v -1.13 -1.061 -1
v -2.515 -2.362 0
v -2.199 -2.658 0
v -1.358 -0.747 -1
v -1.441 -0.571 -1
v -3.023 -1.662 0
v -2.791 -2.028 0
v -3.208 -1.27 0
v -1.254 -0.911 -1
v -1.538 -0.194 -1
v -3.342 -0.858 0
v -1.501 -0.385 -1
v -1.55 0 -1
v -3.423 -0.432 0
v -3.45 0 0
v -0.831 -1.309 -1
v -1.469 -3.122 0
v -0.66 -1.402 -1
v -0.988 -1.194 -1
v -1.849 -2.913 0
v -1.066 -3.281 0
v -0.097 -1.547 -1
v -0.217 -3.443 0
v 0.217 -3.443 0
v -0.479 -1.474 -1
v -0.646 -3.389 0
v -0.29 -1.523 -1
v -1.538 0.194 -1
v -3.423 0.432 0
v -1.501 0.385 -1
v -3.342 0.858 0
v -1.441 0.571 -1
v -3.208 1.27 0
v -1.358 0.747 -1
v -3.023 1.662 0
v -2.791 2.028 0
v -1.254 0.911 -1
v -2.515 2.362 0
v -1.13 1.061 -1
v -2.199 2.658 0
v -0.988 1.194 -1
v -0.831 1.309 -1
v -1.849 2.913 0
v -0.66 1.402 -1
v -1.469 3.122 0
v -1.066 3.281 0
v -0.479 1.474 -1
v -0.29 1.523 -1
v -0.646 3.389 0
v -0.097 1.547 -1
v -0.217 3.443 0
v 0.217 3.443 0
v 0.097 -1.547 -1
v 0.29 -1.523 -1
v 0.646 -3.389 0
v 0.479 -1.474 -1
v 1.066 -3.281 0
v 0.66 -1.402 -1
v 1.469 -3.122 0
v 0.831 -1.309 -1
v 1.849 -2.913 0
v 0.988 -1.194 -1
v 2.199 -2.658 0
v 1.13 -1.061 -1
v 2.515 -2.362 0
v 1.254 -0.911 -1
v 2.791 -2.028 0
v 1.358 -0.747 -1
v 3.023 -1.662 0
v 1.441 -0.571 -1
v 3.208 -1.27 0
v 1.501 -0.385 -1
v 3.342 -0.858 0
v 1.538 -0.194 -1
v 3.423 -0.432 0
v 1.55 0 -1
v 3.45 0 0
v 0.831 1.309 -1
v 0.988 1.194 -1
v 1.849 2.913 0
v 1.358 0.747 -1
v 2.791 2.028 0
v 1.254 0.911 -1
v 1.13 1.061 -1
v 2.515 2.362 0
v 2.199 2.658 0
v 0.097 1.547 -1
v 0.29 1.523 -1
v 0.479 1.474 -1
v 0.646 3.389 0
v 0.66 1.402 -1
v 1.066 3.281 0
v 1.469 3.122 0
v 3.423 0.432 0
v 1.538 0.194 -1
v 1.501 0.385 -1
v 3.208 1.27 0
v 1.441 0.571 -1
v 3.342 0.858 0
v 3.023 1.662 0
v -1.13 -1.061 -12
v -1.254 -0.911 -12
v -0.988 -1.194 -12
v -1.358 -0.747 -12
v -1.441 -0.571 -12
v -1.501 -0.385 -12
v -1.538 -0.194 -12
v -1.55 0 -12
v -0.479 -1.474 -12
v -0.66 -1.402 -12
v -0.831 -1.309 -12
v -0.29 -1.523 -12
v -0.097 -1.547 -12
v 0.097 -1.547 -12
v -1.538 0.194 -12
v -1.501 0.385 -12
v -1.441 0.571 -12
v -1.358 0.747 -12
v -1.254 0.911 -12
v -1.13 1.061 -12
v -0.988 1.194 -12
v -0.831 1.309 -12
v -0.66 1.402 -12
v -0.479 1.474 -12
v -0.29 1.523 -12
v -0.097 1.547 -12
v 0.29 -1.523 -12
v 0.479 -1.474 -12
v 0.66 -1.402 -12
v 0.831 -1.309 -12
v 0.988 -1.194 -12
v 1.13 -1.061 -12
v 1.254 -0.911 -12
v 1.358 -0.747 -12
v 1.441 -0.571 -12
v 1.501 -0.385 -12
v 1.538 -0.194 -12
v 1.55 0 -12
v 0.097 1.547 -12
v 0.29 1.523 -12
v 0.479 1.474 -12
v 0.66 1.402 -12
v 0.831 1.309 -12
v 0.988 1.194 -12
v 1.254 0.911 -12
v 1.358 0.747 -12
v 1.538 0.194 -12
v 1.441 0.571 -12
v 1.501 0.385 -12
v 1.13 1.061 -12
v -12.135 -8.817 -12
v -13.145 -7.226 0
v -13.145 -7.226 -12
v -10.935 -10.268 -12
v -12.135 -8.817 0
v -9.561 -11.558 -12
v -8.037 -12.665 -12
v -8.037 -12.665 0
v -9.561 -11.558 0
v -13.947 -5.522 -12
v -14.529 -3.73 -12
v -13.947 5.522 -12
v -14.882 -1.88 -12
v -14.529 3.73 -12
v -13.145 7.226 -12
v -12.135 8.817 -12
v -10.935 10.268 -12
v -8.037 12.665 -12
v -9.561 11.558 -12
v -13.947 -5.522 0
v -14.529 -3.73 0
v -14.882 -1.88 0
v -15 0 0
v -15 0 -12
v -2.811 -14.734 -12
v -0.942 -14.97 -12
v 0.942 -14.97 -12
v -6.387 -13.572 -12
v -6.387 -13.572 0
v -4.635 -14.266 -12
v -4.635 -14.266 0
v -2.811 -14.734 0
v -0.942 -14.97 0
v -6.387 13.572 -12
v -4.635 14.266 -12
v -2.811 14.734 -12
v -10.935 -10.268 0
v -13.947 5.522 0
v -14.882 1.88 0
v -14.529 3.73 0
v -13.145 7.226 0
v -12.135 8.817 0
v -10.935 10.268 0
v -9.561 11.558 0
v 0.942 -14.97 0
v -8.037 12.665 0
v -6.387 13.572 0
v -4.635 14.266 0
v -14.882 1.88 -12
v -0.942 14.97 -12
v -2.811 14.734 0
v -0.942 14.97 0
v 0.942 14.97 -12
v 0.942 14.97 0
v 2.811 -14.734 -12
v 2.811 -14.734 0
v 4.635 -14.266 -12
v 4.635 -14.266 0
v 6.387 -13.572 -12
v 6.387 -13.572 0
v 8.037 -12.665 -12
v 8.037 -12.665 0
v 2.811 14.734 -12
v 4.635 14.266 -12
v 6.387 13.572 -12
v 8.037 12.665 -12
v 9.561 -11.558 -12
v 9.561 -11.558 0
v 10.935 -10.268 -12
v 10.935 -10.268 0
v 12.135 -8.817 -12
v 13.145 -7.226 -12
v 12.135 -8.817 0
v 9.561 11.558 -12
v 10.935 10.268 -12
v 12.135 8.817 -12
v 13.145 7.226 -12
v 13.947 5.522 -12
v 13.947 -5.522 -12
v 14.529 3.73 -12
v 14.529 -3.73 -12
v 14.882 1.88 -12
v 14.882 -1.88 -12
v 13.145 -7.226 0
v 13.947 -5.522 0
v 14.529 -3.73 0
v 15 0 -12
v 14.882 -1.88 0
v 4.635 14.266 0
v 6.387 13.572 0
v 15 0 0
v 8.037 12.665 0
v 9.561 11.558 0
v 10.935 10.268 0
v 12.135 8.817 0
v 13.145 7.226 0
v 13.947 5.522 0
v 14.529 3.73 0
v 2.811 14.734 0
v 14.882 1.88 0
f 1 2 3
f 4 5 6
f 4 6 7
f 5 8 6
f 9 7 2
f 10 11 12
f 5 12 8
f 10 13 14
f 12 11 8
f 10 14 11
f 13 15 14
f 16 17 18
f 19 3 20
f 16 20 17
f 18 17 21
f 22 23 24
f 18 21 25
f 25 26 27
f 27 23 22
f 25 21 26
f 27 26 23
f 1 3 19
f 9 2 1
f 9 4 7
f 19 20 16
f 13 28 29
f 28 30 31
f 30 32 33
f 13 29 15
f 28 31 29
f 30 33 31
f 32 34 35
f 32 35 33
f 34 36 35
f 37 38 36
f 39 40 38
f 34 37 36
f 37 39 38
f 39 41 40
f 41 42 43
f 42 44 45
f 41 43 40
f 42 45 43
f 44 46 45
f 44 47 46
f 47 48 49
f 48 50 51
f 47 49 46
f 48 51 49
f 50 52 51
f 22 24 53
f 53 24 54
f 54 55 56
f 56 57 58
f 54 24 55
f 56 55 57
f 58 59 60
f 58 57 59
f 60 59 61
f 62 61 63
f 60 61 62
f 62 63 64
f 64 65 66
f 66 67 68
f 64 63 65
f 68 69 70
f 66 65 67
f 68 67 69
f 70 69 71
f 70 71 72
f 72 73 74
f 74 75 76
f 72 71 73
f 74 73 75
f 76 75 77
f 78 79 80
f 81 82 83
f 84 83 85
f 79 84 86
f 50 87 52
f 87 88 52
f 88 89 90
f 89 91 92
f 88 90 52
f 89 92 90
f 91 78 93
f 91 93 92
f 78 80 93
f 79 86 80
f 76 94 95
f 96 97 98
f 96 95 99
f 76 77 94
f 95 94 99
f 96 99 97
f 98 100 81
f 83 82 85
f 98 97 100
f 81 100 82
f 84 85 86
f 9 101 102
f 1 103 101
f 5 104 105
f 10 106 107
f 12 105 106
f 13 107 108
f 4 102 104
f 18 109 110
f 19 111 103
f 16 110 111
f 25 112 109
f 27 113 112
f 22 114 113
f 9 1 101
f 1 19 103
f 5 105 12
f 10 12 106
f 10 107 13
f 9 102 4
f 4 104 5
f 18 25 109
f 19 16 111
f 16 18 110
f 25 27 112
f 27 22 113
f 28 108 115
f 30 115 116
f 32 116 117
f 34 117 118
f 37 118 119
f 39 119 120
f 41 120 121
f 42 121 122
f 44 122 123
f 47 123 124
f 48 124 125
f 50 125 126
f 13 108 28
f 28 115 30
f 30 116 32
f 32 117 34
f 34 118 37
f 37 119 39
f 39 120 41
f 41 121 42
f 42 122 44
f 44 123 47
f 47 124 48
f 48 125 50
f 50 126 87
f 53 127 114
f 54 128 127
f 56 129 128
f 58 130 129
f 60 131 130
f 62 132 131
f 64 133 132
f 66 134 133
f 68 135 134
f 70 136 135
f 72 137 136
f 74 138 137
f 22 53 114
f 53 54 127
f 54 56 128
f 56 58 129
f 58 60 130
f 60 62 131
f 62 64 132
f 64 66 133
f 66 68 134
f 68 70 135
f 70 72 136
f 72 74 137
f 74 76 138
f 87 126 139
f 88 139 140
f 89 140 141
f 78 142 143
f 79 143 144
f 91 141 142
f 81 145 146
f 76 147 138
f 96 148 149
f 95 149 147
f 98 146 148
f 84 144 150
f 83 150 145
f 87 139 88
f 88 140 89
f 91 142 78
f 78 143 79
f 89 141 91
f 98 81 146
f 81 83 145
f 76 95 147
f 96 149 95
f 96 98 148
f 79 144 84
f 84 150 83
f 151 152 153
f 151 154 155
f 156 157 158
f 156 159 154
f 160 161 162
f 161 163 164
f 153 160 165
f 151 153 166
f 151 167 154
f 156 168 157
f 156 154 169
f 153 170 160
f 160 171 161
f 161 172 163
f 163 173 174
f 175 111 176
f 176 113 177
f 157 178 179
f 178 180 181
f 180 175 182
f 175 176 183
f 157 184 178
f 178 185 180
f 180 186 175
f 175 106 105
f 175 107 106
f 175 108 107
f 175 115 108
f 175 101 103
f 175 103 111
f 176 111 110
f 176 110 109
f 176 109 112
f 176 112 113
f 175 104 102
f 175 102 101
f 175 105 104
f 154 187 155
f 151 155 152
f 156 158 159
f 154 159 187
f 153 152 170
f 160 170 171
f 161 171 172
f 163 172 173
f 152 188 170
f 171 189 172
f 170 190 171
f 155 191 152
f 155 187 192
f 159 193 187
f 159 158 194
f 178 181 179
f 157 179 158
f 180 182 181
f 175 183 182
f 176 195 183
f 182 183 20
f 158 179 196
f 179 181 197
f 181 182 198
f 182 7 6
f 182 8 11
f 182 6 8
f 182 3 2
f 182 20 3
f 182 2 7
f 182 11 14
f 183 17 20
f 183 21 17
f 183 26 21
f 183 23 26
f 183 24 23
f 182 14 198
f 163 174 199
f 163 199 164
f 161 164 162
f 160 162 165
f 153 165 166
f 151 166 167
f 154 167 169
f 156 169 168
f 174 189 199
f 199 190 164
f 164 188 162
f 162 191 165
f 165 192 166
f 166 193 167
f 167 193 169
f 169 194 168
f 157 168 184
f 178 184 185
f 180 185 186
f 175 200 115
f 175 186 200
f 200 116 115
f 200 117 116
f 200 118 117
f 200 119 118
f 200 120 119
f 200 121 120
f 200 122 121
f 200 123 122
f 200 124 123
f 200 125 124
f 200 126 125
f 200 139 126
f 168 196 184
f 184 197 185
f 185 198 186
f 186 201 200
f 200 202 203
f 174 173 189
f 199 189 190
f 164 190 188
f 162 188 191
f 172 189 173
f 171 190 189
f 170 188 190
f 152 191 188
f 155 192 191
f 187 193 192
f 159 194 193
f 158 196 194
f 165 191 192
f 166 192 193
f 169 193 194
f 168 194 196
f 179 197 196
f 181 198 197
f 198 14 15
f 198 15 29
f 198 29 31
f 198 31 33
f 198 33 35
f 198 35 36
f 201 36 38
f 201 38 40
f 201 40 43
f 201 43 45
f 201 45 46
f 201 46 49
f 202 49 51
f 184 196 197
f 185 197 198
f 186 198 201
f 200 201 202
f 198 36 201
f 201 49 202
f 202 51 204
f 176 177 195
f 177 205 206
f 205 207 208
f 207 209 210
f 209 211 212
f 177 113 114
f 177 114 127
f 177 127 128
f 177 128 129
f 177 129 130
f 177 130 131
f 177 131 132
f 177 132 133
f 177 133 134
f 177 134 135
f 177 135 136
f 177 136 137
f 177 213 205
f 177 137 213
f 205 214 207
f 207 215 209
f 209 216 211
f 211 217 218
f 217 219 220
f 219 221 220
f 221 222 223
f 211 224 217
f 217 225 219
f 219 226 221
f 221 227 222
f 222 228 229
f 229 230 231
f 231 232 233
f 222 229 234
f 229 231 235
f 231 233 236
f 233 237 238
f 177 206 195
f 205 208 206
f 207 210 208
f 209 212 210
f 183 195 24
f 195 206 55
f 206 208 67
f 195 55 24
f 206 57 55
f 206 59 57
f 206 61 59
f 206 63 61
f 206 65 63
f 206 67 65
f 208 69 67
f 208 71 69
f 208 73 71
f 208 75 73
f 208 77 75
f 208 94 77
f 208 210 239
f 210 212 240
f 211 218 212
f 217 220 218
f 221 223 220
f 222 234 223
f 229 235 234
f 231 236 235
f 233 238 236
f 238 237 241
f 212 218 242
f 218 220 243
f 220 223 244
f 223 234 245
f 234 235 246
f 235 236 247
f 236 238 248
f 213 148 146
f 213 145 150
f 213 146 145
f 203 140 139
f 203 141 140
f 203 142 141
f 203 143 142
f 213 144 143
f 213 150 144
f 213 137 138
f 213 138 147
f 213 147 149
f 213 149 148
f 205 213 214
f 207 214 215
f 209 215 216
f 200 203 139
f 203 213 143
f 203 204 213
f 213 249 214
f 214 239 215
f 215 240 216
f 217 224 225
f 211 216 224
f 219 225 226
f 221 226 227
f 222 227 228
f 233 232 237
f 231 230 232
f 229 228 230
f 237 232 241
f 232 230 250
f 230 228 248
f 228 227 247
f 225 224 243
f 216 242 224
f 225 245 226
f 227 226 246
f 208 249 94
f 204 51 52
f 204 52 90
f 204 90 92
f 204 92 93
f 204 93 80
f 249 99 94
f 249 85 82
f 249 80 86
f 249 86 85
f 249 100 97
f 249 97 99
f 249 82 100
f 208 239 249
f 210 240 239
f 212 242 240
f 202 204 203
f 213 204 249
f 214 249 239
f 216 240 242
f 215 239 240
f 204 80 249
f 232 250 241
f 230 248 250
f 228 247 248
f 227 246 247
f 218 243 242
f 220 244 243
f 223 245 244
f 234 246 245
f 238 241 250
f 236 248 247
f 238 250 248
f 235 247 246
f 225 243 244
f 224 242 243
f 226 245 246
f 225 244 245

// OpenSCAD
$fn = 50;


difference() {
	union() {
		translate(v = [0, 0, -12.0000000000]) {
			cylinder(h = 12, r = 15.0000000000);
		}
	}
	union() {
		translate(v = [0, 0, 0]) {
			rotate(a = [0, 0, 0]) {
				difference() {
					union() {
						translate(v = [0, 0, -15.0000000000]) {
							cylinder(h = 15, r = 1.2500000000);
						}
						translate(v = [0, 0, -1.0000000000]) {
							cylinder(h = 1.0000000000, r1 = 1.5500000000, r2 = 3.4500000000);
						}
						translate(v = [0, 0, -15.0000000000]) {
							cylinder(h = 15, r = 1.5500000000);
						}
						translate(v = [0, 0, -15.0000000000]) {
							cylinder(h = 15, r = 1.2500000000);
						}
					}
					union();
				}
			}
		}
	}
}
